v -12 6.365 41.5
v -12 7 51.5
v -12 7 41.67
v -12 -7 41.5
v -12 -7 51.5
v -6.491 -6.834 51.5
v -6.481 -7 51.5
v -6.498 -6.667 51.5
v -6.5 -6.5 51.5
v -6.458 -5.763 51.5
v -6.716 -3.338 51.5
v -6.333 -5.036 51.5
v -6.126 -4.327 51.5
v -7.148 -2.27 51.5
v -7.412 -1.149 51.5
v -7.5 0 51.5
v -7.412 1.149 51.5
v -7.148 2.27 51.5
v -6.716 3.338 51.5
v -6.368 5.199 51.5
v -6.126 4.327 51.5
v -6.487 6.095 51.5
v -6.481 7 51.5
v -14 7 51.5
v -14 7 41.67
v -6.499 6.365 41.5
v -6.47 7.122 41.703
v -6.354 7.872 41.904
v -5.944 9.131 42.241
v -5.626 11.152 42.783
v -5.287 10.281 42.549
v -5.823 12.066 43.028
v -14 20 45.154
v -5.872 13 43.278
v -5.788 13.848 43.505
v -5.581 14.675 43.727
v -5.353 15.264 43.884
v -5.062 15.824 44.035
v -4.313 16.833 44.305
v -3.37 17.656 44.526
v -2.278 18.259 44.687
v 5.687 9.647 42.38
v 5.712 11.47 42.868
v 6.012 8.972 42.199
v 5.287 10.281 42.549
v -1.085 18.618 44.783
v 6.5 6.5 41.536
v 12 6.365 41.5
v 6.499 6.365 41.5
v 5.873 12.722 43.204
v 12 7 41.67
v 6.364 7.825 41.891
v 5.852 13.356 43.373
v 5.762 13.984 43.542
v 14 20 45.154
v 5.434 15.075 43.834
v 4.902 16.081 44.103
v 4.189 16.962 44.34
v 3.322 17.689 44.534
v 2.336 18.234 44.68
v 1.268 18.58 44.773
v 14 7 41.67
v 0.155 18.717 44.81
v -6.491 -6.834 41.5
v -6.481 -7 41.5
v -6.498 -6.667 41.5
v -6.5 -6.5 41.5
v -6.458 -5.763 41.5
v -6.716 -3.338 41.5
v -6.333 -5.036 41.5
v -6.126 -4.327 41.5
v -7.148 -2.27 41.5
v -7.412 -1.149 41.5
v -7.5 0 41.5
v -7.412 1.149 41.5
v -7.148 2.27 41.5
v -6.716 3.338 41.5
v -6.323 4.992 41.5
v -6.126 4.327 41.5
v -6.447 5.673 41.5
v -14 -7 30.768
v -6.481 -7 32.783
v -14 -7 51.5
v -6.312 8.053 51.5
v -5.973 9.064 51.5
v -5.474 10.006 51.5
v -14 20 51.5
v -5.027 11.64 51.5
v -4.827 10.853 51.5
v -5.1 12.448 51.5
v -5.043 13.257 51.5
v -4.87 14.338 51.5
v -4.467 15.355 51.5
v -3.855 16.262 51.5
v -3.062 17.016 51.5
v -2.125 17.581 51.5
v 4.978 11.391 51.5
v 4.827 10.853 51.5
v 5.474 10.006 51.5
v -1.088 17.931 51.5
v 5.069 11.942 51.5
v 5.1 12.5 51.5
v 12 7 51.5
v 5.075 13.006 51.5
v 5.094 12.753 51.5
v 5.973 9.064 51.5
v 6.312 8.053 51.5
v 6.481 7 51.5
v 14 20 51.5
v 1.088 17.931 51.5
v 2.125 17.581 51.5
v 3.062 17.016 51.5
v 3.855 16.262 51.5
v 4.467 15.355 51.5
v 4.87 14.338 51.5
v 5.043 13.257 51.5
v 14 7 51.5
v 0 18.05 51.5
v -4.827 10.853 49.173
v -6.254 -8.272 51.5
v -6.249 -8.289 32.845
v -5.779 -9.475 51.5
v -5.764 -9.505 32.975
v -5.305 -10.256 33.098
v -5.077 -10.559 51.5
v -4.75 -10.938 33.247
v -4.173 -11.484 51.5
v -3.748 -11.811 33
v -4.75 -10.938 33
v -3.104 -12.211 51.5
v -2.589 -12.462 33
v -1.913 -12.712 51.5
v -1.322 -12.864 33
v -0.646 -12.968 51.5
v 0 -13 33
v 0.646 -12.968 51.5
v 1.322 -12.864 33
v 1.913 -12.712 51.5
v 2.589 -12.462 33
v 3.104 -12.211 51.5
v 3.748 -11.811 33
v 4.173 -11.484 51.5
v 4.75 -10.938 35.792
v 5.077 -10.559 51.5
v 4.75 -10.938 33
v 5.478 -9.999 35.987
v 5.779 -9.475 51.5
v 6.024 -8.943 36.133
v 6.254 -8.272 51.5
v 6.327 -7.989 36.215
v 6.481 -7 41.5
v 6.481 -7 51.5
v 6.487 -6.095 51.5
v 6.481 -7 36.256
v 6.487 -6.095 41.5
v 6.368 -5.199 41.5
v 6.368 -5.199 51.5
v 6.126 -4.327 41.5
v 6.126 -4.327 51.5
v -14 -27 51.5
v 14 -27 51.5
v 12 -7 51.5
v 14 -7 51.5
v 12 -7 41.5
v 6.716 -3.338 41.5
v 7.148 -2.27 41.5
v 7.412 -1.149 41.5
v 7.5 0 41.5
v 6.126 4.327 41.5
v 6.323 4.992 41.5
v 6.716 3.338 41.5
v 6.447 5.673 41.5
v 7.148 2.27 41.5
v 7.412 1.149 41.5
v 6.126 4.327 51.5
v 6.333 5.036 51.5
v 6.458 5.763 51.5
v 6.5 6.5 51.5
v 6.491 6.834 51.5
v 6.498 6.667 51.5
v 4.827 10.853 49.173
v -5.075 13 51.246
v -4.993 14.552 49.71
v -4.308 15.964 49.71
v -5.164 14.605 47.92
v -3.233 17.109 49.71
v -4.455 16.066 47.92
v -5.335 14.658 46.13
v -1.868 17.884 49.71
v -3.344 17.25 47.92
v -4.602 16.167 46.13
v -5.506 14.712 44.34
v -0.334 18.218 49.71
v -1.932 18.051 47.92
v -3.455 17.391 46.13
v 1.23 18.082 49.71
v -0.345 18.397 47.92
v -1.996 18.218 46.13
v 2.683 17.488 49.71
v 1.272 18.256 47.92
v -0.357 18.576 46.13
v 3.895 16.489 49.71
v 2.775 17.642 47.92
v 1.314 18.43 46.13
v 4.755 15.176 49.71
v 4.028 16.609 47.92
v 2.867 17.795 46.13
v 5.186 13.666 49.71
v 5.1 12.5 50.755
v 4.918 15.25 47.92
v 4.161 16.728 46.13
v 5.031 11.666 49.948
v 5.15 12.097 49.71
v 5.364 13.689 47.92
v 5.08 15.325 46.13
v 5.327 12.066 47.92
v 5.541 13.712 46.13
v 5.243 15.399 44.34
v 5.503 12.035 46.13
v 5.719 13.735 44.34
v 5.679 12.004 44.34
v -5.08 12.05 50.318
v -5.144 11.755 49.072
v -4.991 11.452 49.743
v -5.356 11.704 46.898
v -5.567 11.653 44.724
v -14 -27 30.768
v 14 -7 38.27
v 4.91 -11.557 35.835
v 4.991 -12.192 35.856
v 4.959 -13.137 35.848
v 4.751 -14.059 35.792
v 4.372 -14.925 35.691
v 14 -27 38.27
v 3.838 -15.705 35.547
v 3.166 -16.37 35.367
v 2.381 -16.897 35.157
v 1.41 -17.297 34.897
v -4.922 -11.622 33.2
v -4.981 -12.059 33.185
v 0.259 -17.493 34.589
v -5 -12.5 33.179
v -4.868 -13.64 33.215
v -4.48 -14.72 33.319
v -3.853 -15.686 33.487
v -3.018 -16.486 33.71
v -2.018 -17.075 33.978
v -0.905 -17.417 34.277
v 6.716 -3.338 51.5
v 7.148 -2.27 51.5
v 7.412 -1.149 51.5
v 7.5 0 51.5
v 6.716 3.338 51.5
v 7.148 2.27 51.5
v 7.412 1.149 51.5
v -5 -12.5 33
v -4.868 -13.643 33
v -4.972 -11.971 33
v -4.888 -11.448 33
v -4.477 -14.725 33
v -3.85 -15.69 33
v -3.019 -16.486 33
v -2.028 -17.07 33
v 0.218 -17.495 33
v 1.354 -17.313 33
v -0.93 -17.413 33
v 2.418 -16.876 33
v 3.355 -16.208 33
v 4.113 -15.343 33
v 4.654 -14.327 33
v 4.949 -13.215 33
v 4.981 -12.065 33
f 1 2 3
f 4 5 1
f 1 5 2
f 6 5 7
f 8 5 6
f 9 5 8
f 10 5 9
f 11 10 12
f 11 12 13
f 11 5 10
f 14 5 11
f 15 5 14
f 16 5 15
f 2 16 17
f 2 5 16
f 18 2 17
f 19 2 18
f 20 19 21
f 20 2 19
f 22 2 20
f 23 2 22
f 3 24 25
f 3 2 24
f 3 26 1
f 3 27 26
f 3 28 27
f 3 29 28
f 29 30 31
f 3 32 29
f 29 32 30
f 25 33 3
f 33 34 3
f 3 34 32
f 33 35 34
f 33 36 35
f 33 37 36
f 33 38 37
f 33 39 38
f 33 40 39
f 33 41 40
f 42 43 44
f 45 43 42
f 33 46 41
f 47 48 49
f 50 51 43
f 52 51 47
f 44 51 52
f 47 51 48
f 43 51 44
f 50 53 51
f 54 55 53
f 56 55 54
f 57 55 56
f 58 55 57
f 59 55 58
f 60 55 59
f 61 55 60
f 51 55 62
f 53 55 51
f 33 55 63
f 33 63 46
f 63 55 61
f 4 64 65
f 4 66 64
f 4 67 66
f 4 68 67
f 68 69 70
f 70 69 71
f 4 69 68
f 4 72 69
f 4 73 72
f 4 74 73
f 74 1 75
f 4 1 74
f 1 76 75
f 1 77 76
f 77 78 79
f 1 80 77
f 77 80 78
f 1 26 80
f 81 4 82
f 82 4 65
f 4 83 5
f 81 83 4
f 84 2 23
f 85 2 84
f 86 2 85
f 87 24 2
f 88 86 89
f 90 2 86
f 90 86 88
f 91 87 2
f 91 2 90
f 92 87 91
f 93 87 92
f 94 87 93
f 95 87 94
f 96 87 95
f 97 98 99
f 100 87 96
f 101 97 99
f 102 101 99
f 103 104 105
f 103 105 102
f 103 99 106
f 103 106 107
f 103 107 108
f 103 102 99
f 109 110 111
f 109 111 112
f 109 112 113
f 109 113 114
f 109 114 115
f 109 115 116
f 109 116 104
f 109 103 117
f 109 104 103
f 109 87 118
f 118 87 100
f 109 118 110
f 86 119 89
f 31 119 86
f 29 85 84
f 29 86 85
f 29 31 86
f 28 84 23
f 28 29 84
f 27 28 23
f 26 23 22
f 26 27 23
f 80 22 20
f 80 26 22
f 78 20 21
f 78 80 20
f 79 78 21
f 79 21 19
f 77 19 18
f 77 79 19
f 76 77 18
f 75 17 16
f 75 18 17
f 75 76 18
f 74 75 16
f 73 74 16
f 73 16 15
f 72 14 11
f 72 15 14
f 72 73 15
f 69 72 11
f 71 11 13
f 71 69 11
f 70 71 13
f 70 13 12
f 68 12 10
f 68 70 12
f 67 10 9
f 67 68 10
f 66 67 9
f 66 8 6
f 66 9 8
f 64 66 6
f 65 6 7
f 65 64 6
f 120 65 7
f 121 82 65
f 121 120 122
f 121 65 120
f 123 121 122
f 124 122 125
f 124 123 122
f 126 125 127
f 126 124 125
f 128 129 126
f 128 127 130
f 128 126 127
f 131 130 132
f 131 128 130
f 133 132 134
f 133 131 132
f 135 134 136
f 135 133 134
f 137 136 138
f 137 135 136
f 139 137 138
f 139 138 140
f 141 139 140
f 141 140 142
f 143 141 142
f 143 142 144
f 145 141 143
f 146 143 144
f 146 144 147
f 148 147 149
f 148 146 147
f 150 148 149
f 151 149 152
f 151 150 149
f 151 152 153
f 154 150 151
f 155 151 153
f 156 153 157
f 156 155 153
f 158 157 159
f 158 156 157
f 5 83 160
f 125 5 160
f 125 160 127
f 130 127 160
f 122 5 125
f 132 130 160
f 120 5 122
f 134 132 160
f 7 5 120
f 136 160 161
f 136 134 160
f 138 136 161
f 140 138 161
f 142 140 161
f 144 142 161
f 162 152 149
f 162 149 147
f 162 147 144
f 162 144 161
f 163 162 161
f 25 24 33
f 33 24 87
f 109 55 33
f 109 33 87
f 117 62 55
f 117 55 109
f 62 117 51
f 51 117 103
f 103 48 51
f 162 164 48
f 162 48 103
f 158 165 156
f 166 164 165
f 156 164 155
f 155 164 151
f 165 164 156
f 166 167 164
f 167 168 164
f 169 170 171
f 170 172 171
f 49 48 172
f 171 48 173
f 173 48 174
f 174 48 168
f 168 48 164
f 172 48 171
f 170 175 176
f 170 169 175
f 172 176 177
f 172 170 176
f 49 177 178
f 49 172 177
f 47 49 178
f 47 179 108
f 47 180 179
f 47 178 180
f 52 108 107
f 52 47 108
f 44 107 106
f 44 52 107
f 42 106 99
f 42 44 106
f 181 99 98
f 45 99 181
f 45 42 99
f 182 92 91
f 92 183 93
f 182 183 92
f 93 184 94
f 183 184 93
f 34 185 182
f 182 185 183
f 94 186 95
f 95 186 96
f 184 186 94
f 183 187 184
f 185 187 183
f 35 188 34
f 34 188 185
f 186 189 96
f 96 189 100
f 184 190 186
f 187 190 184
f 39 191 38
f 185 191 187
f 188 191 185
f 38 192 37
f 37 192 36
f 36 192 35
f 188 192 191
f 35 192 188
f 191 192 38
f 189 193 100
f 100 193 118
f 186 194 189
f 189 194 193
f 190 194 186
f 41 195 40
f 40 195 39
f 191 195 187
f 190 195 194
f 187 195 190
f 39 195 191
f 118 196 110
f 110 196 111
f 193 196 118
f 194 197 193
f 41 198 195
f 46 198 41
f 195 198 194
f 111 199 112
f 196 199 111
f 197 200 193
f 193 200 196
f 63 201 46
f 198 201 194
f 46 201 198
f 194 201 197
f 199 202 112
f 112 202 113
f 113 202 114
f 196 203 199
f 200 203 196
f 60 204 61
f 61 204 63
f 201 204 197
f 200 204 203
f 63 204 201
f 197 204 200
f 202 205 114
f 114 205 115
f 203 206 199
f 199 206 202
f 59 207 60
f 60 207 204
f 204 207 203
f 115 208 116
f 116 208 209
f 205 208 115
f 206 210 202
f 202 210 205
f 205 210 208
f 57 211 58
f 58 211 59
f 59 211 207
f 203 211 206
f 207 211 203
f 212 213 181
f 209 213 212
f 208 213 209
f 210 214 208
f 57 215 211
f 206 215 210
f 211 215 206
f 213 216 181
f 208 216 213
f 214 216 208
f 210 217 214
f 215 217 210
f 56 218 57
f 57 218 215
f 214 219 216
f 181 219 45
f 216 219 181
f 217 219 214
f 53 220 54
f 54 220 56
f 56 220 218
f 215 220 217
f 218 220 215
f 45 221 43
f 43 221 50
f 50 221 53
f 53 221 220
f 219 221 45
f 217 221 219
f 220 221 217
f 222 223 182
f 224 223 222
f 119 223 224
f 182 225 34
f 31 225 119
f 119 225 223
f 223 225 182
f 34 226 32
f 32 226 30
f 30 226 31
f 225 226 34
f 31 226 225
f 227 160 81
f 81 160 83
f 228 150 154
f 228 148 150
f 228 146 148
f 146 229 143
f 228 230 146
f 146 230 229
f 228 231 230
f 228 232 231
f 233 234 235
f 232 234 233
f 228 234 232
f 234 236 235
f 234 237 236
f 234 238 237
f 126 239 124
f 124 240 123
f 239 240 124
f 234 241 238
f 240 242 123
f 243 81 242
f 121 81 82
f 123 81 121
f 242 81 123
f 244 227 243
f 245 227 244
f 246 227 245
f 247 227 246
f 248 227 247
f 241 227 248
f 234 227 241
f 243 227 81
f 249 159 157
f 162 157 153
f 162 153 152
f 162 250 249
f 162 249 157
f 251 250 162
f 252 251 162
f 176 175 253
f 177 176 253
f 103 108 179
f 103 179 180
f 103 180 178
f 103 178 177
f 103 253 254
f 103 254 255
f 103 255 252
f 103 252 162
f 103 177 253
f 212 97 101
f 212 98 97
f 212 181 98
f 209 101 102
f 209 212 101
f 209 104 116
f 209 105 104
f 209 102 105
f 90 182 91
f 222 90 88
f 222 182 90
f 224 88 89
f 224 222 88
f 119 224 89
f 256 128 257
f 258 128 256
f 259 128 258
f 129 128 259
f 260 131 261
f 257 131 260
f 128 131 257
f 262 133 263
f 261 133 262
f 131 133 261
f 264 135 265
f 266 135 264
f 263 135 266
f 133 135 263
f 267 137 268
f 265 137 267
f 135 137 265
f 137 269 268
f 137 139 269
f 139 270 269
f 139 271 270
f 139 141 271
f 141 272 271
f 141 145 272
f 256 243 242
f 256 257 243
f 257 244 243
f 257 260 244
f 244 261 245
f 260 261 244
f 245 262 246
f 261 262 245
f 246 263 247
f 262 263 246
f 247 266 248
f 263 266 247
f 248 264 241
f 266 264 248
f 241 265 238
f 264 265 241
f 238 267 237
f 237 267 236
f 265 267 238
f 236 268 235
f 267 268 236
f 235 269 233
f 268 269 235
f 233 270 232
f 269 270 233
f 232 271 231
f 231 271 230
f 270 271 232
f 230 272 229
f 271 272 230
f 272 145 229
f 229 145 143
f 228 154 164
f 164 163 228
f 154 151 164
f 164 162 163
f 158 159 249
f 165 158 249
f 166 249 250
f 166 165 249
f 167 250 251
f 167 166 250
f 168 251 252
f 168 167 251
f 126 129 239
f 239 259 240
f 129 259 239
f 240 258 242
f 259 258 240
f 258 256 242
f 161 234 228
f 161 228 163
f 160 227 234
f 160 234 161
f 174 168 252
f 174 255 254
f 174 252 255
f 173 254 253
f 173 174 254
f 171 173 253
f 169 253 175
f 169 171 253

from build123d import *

# Parameters (mm, degrees)
BOX007_W                  = 30
BOX007_H                  = 20
BOX007_DEPTH              = 10
BOX005_W                  = 12
BOX005_H                  = 60
BOX005_DEPTH              = 30
BOX006_W                  = 12
BOX006_H                  = 60
BOX006_DEPTH              = 30
BOX004_W                  = 50
BOX004_H                  = 30
BOX004_DEPTH              = 19
BOX004_PLACEMENT_ANGLE    = 15
CYLINDER012_R             = 5.1
CYLINDER012_DEPTH         = 50
CYLINDER007_R             = 7.5
CYLINDER007_DEPTH         = 70
CYLINDER009_R             = 6.5
CYLINDER009_DEPTH         = 70
CYLINDER010_R             = 7.5
CYLINDER010_DEPTH         = 70
CYLINDER011_R             = 6.5
CYLINDER011_DEPTH         = 70
FUSION007_PLACEMENT_ANGLE = 180
CYLINDER008_R             = 5.1
CYLINDER008_DEPTH         = 70
BOX003_W                  = 57
BOX003_H                  = 59
BOX003_DEPTH              = 20
CYLINDER004_R             = 6.35
CYLINDER004_DEPTH         = 50
BOX_W                     = 40
BOX_H                     = 20
BOX_DEPTH                 = 30
BOX_PLACEMENT_ANGLE       = 15
CYLINDER001_R             = 5
CYLINDER001_DEPTH         = 50
CYLINDER006_R             = 6.35
CYLINDER006_DEPTH         = 50
BOX001_W                  = 40
BOX001_H                  = 20
BOX001_DEPTH              = 30
BOX001_PLACEMENT_ANGLE    = 15
CYLINDER005_R             = 5
CYLINDER005_DEPTH         = 50
FUSION003_PLACEMENT_ANGLE = 180
BOX002_W                  = 24
BOX002_H                  = 39
BOX002_DEPTH              = 10


with BuildPart() as cube007:
    # Box007 → Box007 (new body)
    with BuildSketch(Plane(origin=(-16, 20, 42), x_dir=(1, 0, 0), z_dir=(0, 0, 1))):
        with Locations((15, 10)):
            Rectangle(BOX007_W, BOX007_H)
    extrude(amount=BOX007_DEPTH)


with BuildPart() as cone:
    # Cone → Cone (revolve)
    with BuildSketch(Plane(origin=(0, 13, 52), x_dir=(-1, 0, 0), z_dir=(0, -1, 0))):
        Polygon((0, 0), (5, 0), (6, 10), (0, 10), align=None)
    revolve(axis=Axis((0, 13, 52), (0, 0, -1)))


with BuildPart() as cube005:
    # Box005 → Box005 (new body)
    with BuildSketch(Plane(origin=(14, -29, 23), x_dir=(1, 0, 0), z_dir=(0, 0, 1))):
        with Locations((6, 30)):
            Rectangle(BOX005_W, BOX005_H)
    extrude(amount=BOX005_DEPTH)


with BuildPart() as fusion009:
    # Box006 → Box006 (new body)
    with BuildSketch(Plane(origin=(-26, -29, 23), x_dir=(1, 0, 0), z_dir=(0, 0, 1))):
        with Locations((6, 30)):
            Rectangle(BOX006_W, BOX006_H)
    extrude(amount=BOX006_DEPTH)

    # Fusion009: union Cube005
    add(cube005.part)


with BuildPart() as cube004:
    # Box004 → Box004 (new body)
    with BuildSketch(Plane.XY):
        with Locations((25, 15)):
            Rectangle(BOX004_W, BOX004_H)
    extrude(amount=BOX004_DEPTH)


with BuildPart() as cube004_1:
    # Box004 placement: moved
    add(cube004.part.moved(Location((-24, 7.965926, 22.258819))).rotate(Axis((-24, 7.965926, 22.258819), (1, 0, 0)), BOX004_PLACEMENT_ANGLE))


with BuildPart() as bevilpin005:
    # Cylinder012 → Cylinder012 (new body)
    with BuildSketch(Plane(origin=(0, -12.5, -17), x_dir=(1, 0, 0), z_dir=(0, 0, 1))):
        Circle(CYLINDER012_R)
    extrude(amount=CYLINDER012_DEPTH)


with BuildPart() as bevilpin003:
    # Cylinder007 → Cylinder007 (new body)
    with BuildSketch(Plane.XY):
        Circle(CYLINDER007_R)
    extrude(amount=CYLINDER007_DEPTH)


with BuildPart() as fusion006:
    # Cylinder009 → Cylinder009 (new body)
    with BuildSketch(Plane(origin=(0, 6.5, 0), x_dir=(1, 0, 0), z_dir=(0, 0, 1))):
        Circle(CYLINDER009_R)
    extrude(amount=CYLINDER009_DEPTH)

    # Fusion006: union bevilPin003
    add(bevilpin003.part)


with BuildPart() as bevilpin004:
    # Cylinder010 → Cylinder010 (new body)
    with BuildSketch(Plane.XY):
        Circle(CYLINDER010_R)
    extrude(amount=CYLINDER010_DEPTH)


with BuildPart() as fusion008:
    # Cylinder011 → Cylinder011 (new body)
    with BuildSketch(Plane(origin=(0, 6.5, 0), x_dir=(1, 0, 0), z_dir=(0, 0, 1))):
        Circle(CYLINDER011_R)
    extrude(amount=CYLINDER011_DEPTH)

    # Fusion007: union bevilPin004
    add(bevilpin004.part)


with BuildPart() as fusion008_1:
    # Fusion007 placement: moved
    add(fusion008.part.rotate(Axis((0, 0, 0), (0, 0, 1)), FUSION007_PLACEMENT_ANGLE))

    # Fusion008: union Fusion006
    add(fusion006.part)


with BuildPart() as cylinder008:
    # Cylinder008 → Cylinder008 (new body)
    with BuildSketch(Plane(origin=(0, 12.5, 0), x_dir=(1, 0, 0), z_dir=(0, 0, 1))):
        Circle(CYLINDER008_R)
    extrude(amount=CYLINDER008_DEPTH)


with BuildPart() as cube003:
    # Box003 → Box003 (new body)
    with BuildSketch(Plane(origin=(-29.5, -29, 51.5), x_dir=(1, 0, 0), z_dir=(0, 0, 1))):
        with Locations((28.5, 29.5)):
            Rectangle(BOX003_W, BOX003_H)
    extrude(amount=BOX003_DEPTH)


with BuildPart() as bevilpin001:
    # Cylinder004 → Cylinder004 (new body)
    with BuildSketch(Plane.XY):
        Circle(CYLINDER004_R)
    extrude(amount=CYLINDER004_DEPTH)


with BuildPart() as cube:
    # Box → Box (new body)
    with BuildSketch(Plane.XY):
        with Locations((20, 10)):
            Rectangle(BOX_W, BOX_H)
    extrude(amount=BOX_DEPTH)


with BuildPart() as cube_1:
    # Box placement: moved
    add(cube.part.moved(Location((-19.558238, 7, 39.759763))).rotate(Axis((-19.558238, 7, 39.759763), (0, 1, 0)), BOX_PLACEMENT_ANGLE))


with BuildPart() as fusion001:
    # Cylinder001 → Cylinder001 (new body)
    with BuildSketch(Plane(origin=(0, 12.5, 0), x_dir=(1, 0, 0), z_dir=(0, 0, 1))):
        Circle(CYLINDER001_R)
    extrude(amount=CYLINDER001_DEPTH)

    # Fusion: union Cube
    add(cube_1.part)

    # Fusion001: union bevilPin001
    add(bevilpin001.part)


with BuildPart() as bevilpin002:
    # Cylinder006 → Cylinder006 (new body)
    with BuildSketch(Plane.XY):
        Circle(CYLINDER006_R)
    extrude(amount=CYLINDER006_DEPTH)


with BuildPart() as cube001:
    # Box001 → Box001 (new body)
    with BuildSketch(Plane.XY):
        with Locations((20, 10)):
            Rectangle(BOX001_W, BOX001_H)
    extrude(amount=BOX001_DEPTH)


with BuildPart() as cube001_1:
    # Box001 placement: moved
    add(cube001.part.moved(Location((-19.558238, 7, 39.759763))).rotate(Axis((-19.558238, 7, 39.759763), (0, 1, 0)), BOX001_PLACEMENT_ANGLE))


with BuildPart() as fusion004:
    # Cylinder005 → Cylinder005 (new body)
    with BuildSketch(Plane(origin=(0, 12.5, 0), x_dir=(1, 0, 0), z_dir=(0, 0, 1))):
        Circle(CYLINDER005_R)
    extrude(amount=CYLINDER005_DEPTH)

    # Fusion002: union Cube001
    add(cube001_1.part)

    # Fusion003: union bevilPin002
    add(bevilpin002.part)


with BuildPart() as fusion004_1:
    # Fusion003 placement: moved
    add(fusion004.part.rotate(Axis((0, 0, 0), (0, 0, 1)), FUSION003_PLACEMENT_ANGLE))

    # Fusion004: union Fusion001
    add(fusion001.part)


with BuildPart() as cut007:
    # Box002 → Box002 (new body)
    with BuildSketch(Plane(origin=(-12, -13, 41.5), x_dir=(1, 0, 0), z_dir=(0, 0, 1))):
        with Locations((12, 19.5)):
            Rectangle(BOX002_W, BOX002_H)
    extrude(amount=BOX002_DEPTH)

    # Fusion005: union Fusion004
    add(fusion004_1.part)

    # Cut: cut Cube003
    add(cube003.part, mode=Mode.SUBTRACT)

    # Cut001: cut Cylinder008
    add(cylinder008.part, mode=Mode.SUBTRACT)

    # Cut002: cut Fusion008
    add(fusion008_1.part, mode=Mode.SUBTRACT)

    # Cut003: cut bevilPin005
    add(bevilpin005.part, mode=Mode.SUBTRACT)

    # Cut004: cut Cube004
    add(cube004_1.part, mode=Mode.SUBTRACT)

    # Cut005: cut Fusion009
    add(fusion009.part, mode=Mode.SUBTRACT)

    # Cut006: cut Cone
    add(cone.part, mode=Mode.SUBTRACT)

    # Cut007: cut Cube007
    add(cube007.part, mode=Mode.SUBTRACT)


solid = cut007.part
